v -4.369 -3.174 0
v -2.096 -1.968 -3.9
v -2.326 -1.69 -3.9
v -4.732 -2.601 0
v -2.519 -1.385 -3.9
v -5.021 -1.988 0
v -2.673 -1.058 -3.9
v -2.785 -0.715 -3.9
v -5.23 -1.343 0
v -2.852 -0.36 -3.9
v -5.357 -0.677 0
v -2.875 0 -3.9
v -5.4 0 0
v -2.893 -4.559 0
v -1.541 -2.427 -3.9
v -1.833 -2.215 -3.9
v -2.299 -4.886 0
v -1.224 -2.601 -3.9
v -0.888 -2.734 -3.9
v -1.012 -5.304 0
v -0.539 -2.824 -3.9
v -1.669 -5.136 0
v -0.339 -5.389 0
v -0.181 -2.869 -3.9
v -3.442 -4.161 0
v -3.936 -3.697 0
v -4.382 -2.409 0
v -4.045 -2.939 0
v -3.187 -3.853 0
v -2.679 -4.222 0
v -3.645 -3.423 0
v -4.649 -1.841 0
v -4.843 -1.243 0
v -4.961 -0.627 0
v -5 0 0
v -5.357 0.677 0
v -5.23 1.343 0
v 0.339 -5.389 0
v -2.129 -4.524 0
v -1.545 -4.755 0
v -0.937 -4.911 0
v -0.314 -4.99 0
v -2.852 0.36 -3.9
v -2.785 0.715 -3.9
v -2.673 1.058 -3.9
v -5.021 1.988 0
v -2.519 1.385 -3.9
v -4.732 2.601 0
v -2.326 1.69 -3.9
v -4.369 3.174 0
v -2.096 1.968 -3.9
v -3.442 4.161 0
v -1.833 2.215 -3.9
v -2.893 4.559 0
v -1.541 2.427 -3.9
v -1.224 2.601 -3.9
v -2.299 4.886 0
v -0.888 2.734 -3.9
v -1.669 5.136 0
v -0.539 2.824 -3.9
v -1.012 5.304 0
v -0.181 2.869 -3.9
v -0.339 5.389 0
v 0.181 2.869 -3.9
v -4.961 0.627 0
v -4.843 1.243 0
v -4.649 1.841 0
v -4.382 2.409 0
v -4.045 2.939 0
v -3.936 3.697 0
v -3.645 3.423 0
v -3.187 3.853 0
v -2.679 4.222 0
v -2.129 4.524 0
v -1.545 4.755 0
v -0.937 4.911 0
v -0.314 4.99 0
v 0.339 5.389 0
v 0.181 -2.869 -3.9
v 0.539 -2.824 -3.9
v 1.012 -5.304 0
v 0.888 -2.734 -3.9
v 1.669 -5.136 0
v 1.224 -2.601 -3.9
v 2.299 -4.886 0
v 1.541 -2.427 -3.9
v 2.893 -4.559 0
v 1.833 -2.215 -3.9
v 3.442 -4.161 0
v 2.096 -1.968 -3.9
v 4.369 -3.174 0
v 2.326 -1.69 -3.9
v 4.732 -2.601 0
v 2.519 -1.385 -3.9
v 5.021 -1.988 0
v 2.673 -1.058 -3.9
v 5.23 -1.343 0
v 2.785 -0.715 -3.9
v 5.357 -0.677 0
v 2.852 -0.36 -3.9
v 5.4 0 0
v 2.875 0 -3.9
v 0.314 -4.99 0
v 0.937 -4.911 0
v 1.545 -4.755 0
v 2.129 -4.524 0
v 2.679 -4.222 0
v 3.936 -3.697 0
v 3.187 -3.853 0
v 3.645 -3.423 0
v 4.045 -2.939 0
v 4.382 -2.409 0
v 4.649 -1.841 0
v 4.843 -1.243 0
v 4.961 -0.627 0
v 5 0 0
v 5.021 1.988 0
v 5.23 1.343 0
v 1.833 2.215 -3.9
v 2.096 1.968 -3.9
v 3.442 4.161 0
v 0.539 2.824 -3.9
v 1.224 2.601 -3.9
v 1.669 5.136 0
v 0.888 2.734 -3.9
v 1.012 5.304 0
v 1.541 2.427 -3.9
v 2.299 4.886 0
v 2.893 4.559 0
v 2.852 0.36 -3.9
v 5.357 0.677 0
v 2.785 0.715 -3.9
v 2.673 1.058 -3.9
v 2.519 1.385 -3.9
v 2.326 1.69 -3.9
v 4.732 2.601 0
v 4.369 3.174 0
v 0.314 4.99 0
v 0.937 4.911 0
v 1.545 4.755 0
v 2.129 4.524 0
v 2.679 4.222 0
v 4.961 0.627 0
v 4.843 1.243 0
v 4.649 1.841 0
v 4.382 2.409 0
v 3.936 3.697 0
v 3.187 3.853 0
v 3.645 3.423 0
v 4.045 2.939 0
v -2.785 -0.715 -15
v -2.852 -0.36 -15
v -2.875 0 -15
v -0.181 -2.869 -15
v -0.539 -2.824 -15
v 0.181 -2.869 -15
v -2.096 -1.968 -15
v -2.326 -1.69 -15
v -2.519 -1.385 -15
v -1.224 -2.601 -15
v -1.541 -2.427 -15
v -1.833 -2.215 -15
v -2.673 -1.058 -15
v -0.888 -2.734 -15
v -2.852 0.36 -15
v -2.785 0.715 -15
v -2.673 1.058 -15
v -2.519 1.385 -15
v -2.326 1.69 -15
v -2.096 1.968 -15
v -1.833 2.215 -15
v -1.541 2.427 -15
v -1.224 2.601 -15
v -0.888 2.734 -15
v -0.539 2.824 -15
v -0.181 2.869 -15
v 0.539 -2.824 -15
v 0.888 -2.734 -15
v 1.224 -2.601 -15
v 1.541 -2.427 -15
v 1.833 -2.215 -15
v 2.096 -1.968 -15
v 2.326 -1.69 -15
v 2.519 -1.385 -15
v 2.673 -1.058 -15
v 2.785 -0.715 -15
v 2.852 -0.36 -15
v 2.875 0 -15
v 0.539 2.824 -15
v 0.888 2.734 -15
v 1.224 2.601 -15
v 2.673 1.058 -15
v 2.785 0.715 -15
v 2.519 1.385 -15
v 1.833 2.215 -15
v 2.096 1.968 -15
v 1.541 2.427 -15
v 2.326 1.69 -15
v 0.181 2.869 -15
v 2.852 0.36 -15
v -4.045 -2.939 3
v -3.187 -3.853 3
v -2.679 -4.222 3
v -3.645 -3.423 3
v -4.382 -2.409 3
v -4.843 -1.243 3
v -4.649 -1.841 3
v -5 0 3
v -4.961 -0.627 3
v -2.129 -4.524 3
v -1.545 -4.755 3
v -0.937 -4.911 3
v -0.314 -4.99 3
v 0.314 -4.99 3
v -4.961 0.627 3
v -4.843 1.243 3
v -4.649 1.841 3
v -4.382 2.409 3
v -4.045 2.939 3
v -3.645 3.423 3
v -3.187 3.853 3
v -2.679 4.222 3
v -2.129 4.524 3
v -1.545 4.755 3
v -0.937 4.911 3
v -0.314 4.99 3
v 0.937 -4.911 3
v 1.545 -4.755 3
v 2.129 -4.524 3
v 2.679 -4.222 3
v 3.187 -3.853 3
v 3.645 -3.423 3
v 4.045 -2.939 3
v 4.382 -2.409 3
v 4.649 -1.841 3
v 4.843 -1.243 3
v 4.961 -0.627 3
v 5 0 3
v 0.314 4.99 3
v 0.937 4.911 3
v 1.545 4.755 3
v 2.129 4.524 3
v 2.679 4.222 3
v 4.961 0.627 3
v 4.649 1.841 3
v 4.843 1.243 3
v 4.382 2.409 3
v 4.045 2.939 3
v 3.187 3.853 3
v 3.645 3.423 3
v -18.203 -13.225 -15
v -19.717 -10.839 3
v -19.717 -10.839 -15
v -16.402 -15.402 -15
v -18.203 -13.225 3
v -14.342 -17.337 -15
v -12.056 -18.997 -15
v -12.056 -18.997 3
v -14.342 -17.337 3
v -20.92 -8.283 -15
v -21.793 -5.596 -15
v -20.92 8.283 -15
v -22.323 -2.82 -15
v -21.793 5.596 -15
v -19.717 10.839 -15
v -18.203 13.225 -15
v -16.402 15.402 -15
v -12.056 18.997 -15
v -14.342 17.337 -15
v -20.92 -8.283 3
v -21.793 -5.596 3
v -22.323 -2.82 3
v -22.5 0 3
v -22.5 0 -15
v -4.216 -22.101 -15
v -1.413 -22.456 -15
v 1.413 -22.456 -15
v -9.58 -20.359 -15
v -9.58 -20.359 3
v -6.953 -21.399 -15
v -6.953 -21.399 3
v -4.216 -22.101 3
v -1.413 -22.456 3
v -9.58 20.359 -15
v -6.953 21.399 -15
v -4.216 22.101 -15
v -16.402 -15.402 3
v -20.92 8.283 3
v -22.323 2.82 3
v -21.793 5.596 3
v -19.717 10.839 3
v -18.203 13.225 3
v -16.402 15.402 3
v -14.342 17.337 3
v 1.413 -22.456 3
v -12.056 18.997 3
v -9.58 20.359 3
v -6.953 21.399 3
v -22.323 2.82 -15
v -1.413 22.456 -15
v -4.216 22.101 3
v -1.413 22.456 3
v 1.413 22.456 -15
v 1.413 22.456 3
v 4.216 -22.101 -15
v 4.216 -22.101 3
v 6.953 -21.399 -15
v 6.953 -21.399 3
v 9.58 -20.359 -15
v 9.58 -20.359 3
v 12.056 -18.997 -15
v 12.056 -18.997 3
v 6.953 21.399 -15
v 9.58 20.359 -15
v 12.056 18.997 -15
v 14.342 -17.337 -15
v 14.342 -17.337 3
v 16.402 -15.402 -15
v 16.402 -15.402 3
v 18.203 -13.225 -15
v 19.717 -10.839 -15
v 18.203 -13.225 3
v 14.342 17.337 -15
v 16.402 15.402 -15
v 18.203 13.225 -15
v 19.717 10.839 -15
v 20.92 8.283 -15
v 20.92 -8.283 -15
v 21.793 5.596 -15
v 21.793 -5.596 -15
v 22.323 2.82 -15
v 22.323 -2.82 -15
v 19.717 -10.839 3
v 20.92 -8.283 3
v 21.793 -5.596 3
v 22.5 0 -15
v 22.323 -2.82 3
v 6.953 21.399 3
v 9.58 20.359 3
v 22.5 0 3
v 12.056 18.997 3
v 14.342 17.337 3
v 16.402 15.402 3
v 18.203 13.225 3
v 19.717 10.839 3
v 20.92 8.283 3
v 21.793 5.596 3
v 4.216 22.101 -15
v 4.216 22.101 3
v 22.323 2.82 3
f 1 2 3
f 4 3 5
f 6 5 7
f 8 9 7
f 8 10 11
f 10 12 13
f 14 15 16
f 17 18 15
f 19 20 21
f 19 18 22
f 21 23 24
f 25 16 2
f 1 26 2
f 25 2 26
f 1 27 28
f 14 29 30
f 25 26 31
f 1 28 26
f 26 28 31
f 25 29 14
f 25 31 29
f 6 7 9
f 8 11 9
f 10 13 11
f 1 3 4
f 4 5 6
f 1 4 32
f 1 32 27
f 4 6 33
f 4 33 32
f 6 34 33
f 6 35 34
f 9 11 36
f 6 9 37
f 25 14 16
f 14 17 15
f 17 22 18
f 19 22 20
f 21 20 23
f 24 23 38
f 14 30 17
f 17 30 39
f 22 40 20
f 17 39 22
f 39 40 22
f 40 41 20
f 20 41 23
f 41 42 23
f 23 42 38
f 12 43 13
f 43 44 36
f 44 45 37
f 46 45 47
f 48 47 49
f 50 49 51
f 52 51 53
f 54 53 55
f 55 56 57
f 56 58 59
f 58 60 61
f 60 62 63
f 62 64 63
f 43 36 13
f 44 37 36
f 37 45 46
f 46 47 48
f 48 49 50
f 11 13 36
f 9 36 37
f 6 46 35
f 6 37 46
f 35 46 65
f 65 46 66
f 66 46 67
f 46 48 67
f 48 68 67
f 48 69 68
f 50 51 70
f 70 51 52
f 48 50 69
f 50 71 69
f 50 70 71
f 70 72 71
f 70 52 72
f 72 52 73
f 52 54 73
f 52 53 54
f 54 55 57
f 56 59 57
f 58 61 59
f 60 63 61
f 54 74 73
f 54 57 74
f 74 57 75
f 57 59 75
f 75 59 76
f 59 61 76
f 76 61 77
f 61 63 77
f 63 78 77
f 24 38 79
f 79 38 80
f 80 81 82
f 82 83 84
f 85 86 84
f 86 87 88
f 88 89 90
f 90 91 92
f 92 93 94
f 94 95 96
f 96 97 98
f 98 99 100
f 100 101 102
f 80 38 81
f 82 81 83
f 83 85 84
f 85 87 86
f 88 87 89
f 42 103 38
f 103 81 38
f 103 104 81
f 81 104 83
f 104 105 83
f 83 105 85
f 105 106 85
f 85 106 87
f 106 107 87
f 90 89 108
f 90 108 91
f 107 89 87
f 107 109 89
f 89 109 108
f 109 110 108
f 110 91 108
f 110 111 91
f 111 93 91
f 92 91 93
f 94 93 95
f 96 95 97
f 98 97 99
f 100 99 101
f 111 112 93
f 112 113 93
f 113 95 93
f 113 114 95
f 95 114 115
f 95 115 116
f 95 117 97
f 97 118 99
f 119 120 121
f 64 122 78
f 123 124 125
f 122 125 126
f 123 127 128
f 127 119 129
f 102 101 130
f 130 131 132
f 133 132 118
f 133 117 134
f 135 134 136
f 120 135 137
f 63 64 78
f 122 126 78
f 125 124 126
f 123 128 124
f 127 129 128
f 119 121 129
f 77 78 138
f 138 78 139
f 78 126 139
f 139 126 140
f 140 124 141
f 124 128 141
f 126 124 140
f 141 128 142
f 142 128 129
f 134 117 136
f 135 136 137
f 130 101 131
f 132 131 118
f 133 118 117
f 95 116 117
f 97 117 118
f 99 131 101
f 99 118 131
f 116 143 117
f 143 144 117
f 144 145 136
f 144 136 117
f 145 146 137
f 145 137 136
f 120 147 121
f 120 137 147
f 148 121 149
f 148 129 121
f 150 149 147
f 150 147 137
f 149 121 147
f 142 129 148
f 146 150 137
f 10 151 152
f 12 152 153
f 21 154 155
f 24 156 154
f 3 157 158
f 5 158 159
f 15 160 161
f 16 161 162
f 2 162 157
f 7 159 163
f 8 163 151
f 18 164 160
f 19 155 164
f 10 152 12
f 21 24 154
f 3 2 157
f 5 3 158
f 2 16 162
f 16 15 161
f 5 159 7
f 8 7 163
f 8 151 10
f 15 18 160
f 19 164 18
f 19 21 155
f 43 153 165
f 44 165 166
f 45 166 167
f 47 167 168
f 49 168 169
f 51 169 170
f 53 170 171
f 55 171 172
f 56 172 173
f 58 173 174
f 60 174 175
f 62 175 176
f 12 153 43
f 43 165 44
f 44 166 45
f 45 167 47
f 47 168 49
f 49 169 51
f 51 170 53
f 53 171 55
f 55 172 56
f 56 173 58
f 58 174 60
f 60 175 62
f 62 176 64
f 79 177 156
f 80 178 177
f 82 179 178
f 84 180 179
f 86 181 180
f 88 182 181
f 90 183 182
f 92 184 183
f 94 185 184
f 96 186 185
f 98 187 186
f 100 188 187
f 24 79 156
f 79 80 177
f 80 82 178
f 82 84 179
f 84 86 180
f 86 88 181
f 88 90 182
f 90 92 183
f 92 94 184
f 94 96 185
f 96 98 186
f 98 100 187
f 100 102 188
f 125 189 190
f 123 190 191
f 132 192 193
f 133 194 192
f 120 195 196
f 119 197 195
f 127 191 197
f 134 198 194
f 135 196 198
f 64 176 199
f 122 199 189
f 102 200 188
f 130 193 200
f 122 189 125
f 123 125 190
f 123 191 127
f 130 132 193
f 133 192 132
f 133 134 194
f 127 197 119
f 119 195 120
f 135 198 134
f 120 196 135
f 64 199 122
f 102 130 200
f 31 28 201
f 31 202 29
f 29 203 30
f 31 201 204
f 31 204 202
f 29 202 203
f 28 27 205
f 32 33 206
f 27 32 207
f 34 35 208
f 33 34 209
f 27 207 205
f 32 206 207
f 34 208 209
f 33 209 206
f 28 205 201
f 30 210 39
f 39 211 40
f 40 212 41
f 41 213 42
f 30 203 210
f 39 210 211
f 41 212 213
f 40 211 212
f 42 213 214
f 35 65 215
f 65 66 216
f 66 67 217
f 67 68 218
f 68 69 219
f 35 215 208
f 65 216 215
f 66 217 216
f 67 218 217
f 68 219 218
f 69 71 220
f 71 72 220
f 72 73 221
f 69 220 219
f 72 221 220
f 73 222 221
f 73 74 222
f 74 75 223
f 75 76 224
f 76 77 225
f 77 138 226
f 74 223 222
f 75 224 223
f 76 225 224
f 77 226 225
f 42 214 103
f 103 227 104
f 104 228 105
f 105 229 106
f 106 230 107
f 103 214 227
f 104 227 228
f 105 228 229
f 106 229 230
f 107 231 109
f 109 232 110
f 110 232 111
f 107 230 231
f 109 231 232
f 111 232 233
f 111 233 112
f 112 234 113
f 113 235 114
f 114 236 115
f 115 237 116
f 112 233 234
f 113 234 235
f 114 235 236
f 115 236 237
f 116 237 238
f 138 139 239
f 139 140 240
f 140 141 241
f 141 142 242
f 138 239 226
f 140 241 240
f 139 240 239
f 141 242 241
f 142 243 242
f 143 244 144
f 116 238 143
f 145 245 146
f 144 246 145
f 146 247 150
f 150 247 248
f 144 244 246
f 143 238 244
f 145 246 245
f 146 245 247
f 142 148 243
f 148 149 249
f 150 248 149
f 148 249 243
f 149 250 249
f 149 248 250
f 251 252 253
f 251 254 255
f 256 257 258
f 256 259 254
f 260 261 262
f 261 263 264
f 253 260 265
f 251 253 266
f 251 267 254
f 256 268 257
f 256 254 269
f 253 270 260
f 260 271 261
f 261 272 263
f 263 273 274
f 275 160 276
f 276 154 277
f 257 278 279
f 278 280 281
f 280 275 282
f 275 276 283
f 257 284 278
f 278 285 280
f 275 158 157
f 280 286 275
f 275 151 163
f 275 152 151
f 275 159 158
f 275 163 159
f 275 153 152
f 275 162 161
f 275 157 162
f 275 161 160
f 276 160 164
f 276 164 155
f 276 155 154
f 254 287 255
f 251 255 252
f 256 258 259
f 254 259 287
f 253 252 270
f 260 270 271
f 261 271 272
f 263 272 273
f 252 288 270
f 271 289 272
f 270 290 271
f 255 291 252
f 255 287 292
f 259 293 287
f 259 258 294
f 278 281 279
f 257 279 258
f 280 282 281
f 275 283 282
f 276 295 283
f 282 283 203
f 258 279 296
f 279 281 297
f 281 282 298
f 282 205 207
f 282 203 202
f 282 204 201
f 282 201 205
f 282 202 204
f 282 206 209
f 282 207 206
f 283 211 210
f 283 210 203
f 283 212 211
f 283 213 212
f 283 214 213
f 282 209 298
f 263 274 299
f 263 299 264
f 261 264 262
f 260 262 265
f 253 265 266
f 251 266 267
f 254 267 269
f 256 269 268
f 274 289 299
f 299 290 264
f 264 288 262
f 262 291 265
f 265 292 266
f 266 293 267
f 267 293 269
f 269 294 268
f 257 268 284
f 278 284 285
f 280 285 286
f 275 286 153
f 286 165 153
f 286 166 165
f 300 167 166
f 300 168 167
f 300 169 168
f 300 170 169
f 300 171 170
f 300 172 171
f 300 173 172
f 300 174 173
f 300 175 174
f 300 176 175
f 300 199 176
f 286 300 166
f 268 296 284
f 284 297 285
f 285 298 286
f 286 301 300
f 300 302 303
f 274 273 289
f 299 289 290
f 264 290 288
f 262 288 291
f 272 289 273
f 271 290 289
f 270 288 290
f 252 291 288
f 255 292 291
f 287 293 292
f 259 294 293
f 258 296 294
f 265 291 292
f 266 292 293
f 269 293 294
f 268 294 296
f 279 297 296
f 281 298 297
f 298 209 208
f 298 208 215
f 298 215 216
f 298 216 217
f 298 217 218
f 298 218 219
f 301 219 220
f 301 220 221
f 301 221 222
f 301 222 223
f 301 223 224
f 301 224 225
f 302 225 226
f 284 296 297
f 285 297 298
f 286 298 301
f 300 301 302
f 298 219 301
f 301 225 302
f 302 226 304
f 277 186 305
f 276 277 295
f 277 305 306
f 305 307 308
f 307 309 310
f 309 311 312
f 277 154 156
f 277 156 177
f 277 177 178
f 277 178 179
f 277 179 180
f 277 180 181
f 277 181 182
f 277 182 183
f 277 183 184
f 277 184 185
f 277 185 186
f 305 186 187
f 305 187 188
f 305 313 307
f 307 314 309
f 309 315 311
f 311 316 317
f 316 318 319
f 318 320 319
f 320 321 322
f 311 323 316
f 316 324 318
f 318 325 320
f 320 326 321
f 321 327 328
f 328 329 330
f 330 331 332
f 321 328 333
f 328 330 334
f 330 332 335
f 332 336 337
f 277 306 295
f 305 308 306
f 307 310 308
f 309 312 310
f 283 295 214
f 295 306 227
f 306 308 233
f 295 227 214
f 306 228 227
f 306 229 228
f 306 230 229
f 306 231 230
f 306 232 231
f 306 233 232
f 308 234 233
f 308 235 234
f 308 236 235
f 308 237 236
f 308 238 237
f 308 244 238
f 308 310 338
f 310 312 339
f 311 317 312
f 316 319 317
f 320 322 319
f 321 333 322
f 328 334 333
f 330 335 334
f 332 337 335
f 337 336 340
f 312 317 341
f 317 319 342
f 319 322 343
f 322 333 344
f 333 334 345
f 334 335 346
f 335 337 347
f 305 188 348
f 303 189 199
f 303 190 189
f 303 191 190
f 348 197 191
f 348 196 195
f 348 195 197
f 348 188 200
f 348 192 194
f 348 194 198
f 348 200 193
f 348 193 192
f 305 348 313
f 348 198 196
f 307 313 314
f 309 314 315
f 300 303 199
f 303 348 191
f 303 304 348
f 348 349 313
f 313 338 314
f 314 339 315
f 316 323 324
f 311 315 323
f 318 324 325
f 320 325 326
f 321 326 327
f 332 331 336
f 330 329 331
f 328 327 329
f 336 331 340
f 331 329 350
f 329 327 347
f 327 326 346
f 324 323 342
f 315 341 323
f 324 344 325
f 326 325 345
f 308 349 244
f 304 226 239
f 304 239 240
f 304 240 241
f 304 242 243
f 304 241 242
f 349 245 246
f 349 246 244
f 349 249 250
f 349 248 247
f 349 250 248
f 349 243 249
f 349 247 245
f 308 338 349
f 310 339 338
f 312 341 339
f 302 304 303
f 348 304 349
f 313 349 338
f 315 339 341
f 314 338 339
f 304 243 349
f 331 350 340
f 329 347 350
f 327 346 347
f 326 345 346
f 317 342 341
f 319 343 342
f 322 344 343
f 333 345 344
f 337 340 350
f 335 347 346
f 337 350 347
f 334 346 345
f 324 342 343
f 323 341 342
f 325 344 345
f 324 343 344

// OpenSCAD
$fn = 50;

difference() {
	union() {
		translate(v = [0, 0, -15.0]) {
			cylinder(h = 18, r = 22.5);
		}
	}
	union() {
		translate(v = [0, 0, 0]) {
			rotate(a = [0, 0, 0]) {
				difference() {
					union() {
						translate(v = [0, 0, -18.0]) {
							cylinder(h = 18, r = 2.6);
						}
						translate(v = [0, 0, -3.9]) {
							cylinder(h = 3.9, r1 = 2.875, r2 = 5.4);
						}
						translate(v = [0, 0, -18.0]) {
							cylinder(h = 18, r = 2.875);
						}
						translate(v = [0, 0, -18.0]) {
							cylinder(h = 18, r = 2.6);
						}
					}
					union();
				}
			}
		}
		#cylinder(h = 3, r = 5.0);
	}
}
